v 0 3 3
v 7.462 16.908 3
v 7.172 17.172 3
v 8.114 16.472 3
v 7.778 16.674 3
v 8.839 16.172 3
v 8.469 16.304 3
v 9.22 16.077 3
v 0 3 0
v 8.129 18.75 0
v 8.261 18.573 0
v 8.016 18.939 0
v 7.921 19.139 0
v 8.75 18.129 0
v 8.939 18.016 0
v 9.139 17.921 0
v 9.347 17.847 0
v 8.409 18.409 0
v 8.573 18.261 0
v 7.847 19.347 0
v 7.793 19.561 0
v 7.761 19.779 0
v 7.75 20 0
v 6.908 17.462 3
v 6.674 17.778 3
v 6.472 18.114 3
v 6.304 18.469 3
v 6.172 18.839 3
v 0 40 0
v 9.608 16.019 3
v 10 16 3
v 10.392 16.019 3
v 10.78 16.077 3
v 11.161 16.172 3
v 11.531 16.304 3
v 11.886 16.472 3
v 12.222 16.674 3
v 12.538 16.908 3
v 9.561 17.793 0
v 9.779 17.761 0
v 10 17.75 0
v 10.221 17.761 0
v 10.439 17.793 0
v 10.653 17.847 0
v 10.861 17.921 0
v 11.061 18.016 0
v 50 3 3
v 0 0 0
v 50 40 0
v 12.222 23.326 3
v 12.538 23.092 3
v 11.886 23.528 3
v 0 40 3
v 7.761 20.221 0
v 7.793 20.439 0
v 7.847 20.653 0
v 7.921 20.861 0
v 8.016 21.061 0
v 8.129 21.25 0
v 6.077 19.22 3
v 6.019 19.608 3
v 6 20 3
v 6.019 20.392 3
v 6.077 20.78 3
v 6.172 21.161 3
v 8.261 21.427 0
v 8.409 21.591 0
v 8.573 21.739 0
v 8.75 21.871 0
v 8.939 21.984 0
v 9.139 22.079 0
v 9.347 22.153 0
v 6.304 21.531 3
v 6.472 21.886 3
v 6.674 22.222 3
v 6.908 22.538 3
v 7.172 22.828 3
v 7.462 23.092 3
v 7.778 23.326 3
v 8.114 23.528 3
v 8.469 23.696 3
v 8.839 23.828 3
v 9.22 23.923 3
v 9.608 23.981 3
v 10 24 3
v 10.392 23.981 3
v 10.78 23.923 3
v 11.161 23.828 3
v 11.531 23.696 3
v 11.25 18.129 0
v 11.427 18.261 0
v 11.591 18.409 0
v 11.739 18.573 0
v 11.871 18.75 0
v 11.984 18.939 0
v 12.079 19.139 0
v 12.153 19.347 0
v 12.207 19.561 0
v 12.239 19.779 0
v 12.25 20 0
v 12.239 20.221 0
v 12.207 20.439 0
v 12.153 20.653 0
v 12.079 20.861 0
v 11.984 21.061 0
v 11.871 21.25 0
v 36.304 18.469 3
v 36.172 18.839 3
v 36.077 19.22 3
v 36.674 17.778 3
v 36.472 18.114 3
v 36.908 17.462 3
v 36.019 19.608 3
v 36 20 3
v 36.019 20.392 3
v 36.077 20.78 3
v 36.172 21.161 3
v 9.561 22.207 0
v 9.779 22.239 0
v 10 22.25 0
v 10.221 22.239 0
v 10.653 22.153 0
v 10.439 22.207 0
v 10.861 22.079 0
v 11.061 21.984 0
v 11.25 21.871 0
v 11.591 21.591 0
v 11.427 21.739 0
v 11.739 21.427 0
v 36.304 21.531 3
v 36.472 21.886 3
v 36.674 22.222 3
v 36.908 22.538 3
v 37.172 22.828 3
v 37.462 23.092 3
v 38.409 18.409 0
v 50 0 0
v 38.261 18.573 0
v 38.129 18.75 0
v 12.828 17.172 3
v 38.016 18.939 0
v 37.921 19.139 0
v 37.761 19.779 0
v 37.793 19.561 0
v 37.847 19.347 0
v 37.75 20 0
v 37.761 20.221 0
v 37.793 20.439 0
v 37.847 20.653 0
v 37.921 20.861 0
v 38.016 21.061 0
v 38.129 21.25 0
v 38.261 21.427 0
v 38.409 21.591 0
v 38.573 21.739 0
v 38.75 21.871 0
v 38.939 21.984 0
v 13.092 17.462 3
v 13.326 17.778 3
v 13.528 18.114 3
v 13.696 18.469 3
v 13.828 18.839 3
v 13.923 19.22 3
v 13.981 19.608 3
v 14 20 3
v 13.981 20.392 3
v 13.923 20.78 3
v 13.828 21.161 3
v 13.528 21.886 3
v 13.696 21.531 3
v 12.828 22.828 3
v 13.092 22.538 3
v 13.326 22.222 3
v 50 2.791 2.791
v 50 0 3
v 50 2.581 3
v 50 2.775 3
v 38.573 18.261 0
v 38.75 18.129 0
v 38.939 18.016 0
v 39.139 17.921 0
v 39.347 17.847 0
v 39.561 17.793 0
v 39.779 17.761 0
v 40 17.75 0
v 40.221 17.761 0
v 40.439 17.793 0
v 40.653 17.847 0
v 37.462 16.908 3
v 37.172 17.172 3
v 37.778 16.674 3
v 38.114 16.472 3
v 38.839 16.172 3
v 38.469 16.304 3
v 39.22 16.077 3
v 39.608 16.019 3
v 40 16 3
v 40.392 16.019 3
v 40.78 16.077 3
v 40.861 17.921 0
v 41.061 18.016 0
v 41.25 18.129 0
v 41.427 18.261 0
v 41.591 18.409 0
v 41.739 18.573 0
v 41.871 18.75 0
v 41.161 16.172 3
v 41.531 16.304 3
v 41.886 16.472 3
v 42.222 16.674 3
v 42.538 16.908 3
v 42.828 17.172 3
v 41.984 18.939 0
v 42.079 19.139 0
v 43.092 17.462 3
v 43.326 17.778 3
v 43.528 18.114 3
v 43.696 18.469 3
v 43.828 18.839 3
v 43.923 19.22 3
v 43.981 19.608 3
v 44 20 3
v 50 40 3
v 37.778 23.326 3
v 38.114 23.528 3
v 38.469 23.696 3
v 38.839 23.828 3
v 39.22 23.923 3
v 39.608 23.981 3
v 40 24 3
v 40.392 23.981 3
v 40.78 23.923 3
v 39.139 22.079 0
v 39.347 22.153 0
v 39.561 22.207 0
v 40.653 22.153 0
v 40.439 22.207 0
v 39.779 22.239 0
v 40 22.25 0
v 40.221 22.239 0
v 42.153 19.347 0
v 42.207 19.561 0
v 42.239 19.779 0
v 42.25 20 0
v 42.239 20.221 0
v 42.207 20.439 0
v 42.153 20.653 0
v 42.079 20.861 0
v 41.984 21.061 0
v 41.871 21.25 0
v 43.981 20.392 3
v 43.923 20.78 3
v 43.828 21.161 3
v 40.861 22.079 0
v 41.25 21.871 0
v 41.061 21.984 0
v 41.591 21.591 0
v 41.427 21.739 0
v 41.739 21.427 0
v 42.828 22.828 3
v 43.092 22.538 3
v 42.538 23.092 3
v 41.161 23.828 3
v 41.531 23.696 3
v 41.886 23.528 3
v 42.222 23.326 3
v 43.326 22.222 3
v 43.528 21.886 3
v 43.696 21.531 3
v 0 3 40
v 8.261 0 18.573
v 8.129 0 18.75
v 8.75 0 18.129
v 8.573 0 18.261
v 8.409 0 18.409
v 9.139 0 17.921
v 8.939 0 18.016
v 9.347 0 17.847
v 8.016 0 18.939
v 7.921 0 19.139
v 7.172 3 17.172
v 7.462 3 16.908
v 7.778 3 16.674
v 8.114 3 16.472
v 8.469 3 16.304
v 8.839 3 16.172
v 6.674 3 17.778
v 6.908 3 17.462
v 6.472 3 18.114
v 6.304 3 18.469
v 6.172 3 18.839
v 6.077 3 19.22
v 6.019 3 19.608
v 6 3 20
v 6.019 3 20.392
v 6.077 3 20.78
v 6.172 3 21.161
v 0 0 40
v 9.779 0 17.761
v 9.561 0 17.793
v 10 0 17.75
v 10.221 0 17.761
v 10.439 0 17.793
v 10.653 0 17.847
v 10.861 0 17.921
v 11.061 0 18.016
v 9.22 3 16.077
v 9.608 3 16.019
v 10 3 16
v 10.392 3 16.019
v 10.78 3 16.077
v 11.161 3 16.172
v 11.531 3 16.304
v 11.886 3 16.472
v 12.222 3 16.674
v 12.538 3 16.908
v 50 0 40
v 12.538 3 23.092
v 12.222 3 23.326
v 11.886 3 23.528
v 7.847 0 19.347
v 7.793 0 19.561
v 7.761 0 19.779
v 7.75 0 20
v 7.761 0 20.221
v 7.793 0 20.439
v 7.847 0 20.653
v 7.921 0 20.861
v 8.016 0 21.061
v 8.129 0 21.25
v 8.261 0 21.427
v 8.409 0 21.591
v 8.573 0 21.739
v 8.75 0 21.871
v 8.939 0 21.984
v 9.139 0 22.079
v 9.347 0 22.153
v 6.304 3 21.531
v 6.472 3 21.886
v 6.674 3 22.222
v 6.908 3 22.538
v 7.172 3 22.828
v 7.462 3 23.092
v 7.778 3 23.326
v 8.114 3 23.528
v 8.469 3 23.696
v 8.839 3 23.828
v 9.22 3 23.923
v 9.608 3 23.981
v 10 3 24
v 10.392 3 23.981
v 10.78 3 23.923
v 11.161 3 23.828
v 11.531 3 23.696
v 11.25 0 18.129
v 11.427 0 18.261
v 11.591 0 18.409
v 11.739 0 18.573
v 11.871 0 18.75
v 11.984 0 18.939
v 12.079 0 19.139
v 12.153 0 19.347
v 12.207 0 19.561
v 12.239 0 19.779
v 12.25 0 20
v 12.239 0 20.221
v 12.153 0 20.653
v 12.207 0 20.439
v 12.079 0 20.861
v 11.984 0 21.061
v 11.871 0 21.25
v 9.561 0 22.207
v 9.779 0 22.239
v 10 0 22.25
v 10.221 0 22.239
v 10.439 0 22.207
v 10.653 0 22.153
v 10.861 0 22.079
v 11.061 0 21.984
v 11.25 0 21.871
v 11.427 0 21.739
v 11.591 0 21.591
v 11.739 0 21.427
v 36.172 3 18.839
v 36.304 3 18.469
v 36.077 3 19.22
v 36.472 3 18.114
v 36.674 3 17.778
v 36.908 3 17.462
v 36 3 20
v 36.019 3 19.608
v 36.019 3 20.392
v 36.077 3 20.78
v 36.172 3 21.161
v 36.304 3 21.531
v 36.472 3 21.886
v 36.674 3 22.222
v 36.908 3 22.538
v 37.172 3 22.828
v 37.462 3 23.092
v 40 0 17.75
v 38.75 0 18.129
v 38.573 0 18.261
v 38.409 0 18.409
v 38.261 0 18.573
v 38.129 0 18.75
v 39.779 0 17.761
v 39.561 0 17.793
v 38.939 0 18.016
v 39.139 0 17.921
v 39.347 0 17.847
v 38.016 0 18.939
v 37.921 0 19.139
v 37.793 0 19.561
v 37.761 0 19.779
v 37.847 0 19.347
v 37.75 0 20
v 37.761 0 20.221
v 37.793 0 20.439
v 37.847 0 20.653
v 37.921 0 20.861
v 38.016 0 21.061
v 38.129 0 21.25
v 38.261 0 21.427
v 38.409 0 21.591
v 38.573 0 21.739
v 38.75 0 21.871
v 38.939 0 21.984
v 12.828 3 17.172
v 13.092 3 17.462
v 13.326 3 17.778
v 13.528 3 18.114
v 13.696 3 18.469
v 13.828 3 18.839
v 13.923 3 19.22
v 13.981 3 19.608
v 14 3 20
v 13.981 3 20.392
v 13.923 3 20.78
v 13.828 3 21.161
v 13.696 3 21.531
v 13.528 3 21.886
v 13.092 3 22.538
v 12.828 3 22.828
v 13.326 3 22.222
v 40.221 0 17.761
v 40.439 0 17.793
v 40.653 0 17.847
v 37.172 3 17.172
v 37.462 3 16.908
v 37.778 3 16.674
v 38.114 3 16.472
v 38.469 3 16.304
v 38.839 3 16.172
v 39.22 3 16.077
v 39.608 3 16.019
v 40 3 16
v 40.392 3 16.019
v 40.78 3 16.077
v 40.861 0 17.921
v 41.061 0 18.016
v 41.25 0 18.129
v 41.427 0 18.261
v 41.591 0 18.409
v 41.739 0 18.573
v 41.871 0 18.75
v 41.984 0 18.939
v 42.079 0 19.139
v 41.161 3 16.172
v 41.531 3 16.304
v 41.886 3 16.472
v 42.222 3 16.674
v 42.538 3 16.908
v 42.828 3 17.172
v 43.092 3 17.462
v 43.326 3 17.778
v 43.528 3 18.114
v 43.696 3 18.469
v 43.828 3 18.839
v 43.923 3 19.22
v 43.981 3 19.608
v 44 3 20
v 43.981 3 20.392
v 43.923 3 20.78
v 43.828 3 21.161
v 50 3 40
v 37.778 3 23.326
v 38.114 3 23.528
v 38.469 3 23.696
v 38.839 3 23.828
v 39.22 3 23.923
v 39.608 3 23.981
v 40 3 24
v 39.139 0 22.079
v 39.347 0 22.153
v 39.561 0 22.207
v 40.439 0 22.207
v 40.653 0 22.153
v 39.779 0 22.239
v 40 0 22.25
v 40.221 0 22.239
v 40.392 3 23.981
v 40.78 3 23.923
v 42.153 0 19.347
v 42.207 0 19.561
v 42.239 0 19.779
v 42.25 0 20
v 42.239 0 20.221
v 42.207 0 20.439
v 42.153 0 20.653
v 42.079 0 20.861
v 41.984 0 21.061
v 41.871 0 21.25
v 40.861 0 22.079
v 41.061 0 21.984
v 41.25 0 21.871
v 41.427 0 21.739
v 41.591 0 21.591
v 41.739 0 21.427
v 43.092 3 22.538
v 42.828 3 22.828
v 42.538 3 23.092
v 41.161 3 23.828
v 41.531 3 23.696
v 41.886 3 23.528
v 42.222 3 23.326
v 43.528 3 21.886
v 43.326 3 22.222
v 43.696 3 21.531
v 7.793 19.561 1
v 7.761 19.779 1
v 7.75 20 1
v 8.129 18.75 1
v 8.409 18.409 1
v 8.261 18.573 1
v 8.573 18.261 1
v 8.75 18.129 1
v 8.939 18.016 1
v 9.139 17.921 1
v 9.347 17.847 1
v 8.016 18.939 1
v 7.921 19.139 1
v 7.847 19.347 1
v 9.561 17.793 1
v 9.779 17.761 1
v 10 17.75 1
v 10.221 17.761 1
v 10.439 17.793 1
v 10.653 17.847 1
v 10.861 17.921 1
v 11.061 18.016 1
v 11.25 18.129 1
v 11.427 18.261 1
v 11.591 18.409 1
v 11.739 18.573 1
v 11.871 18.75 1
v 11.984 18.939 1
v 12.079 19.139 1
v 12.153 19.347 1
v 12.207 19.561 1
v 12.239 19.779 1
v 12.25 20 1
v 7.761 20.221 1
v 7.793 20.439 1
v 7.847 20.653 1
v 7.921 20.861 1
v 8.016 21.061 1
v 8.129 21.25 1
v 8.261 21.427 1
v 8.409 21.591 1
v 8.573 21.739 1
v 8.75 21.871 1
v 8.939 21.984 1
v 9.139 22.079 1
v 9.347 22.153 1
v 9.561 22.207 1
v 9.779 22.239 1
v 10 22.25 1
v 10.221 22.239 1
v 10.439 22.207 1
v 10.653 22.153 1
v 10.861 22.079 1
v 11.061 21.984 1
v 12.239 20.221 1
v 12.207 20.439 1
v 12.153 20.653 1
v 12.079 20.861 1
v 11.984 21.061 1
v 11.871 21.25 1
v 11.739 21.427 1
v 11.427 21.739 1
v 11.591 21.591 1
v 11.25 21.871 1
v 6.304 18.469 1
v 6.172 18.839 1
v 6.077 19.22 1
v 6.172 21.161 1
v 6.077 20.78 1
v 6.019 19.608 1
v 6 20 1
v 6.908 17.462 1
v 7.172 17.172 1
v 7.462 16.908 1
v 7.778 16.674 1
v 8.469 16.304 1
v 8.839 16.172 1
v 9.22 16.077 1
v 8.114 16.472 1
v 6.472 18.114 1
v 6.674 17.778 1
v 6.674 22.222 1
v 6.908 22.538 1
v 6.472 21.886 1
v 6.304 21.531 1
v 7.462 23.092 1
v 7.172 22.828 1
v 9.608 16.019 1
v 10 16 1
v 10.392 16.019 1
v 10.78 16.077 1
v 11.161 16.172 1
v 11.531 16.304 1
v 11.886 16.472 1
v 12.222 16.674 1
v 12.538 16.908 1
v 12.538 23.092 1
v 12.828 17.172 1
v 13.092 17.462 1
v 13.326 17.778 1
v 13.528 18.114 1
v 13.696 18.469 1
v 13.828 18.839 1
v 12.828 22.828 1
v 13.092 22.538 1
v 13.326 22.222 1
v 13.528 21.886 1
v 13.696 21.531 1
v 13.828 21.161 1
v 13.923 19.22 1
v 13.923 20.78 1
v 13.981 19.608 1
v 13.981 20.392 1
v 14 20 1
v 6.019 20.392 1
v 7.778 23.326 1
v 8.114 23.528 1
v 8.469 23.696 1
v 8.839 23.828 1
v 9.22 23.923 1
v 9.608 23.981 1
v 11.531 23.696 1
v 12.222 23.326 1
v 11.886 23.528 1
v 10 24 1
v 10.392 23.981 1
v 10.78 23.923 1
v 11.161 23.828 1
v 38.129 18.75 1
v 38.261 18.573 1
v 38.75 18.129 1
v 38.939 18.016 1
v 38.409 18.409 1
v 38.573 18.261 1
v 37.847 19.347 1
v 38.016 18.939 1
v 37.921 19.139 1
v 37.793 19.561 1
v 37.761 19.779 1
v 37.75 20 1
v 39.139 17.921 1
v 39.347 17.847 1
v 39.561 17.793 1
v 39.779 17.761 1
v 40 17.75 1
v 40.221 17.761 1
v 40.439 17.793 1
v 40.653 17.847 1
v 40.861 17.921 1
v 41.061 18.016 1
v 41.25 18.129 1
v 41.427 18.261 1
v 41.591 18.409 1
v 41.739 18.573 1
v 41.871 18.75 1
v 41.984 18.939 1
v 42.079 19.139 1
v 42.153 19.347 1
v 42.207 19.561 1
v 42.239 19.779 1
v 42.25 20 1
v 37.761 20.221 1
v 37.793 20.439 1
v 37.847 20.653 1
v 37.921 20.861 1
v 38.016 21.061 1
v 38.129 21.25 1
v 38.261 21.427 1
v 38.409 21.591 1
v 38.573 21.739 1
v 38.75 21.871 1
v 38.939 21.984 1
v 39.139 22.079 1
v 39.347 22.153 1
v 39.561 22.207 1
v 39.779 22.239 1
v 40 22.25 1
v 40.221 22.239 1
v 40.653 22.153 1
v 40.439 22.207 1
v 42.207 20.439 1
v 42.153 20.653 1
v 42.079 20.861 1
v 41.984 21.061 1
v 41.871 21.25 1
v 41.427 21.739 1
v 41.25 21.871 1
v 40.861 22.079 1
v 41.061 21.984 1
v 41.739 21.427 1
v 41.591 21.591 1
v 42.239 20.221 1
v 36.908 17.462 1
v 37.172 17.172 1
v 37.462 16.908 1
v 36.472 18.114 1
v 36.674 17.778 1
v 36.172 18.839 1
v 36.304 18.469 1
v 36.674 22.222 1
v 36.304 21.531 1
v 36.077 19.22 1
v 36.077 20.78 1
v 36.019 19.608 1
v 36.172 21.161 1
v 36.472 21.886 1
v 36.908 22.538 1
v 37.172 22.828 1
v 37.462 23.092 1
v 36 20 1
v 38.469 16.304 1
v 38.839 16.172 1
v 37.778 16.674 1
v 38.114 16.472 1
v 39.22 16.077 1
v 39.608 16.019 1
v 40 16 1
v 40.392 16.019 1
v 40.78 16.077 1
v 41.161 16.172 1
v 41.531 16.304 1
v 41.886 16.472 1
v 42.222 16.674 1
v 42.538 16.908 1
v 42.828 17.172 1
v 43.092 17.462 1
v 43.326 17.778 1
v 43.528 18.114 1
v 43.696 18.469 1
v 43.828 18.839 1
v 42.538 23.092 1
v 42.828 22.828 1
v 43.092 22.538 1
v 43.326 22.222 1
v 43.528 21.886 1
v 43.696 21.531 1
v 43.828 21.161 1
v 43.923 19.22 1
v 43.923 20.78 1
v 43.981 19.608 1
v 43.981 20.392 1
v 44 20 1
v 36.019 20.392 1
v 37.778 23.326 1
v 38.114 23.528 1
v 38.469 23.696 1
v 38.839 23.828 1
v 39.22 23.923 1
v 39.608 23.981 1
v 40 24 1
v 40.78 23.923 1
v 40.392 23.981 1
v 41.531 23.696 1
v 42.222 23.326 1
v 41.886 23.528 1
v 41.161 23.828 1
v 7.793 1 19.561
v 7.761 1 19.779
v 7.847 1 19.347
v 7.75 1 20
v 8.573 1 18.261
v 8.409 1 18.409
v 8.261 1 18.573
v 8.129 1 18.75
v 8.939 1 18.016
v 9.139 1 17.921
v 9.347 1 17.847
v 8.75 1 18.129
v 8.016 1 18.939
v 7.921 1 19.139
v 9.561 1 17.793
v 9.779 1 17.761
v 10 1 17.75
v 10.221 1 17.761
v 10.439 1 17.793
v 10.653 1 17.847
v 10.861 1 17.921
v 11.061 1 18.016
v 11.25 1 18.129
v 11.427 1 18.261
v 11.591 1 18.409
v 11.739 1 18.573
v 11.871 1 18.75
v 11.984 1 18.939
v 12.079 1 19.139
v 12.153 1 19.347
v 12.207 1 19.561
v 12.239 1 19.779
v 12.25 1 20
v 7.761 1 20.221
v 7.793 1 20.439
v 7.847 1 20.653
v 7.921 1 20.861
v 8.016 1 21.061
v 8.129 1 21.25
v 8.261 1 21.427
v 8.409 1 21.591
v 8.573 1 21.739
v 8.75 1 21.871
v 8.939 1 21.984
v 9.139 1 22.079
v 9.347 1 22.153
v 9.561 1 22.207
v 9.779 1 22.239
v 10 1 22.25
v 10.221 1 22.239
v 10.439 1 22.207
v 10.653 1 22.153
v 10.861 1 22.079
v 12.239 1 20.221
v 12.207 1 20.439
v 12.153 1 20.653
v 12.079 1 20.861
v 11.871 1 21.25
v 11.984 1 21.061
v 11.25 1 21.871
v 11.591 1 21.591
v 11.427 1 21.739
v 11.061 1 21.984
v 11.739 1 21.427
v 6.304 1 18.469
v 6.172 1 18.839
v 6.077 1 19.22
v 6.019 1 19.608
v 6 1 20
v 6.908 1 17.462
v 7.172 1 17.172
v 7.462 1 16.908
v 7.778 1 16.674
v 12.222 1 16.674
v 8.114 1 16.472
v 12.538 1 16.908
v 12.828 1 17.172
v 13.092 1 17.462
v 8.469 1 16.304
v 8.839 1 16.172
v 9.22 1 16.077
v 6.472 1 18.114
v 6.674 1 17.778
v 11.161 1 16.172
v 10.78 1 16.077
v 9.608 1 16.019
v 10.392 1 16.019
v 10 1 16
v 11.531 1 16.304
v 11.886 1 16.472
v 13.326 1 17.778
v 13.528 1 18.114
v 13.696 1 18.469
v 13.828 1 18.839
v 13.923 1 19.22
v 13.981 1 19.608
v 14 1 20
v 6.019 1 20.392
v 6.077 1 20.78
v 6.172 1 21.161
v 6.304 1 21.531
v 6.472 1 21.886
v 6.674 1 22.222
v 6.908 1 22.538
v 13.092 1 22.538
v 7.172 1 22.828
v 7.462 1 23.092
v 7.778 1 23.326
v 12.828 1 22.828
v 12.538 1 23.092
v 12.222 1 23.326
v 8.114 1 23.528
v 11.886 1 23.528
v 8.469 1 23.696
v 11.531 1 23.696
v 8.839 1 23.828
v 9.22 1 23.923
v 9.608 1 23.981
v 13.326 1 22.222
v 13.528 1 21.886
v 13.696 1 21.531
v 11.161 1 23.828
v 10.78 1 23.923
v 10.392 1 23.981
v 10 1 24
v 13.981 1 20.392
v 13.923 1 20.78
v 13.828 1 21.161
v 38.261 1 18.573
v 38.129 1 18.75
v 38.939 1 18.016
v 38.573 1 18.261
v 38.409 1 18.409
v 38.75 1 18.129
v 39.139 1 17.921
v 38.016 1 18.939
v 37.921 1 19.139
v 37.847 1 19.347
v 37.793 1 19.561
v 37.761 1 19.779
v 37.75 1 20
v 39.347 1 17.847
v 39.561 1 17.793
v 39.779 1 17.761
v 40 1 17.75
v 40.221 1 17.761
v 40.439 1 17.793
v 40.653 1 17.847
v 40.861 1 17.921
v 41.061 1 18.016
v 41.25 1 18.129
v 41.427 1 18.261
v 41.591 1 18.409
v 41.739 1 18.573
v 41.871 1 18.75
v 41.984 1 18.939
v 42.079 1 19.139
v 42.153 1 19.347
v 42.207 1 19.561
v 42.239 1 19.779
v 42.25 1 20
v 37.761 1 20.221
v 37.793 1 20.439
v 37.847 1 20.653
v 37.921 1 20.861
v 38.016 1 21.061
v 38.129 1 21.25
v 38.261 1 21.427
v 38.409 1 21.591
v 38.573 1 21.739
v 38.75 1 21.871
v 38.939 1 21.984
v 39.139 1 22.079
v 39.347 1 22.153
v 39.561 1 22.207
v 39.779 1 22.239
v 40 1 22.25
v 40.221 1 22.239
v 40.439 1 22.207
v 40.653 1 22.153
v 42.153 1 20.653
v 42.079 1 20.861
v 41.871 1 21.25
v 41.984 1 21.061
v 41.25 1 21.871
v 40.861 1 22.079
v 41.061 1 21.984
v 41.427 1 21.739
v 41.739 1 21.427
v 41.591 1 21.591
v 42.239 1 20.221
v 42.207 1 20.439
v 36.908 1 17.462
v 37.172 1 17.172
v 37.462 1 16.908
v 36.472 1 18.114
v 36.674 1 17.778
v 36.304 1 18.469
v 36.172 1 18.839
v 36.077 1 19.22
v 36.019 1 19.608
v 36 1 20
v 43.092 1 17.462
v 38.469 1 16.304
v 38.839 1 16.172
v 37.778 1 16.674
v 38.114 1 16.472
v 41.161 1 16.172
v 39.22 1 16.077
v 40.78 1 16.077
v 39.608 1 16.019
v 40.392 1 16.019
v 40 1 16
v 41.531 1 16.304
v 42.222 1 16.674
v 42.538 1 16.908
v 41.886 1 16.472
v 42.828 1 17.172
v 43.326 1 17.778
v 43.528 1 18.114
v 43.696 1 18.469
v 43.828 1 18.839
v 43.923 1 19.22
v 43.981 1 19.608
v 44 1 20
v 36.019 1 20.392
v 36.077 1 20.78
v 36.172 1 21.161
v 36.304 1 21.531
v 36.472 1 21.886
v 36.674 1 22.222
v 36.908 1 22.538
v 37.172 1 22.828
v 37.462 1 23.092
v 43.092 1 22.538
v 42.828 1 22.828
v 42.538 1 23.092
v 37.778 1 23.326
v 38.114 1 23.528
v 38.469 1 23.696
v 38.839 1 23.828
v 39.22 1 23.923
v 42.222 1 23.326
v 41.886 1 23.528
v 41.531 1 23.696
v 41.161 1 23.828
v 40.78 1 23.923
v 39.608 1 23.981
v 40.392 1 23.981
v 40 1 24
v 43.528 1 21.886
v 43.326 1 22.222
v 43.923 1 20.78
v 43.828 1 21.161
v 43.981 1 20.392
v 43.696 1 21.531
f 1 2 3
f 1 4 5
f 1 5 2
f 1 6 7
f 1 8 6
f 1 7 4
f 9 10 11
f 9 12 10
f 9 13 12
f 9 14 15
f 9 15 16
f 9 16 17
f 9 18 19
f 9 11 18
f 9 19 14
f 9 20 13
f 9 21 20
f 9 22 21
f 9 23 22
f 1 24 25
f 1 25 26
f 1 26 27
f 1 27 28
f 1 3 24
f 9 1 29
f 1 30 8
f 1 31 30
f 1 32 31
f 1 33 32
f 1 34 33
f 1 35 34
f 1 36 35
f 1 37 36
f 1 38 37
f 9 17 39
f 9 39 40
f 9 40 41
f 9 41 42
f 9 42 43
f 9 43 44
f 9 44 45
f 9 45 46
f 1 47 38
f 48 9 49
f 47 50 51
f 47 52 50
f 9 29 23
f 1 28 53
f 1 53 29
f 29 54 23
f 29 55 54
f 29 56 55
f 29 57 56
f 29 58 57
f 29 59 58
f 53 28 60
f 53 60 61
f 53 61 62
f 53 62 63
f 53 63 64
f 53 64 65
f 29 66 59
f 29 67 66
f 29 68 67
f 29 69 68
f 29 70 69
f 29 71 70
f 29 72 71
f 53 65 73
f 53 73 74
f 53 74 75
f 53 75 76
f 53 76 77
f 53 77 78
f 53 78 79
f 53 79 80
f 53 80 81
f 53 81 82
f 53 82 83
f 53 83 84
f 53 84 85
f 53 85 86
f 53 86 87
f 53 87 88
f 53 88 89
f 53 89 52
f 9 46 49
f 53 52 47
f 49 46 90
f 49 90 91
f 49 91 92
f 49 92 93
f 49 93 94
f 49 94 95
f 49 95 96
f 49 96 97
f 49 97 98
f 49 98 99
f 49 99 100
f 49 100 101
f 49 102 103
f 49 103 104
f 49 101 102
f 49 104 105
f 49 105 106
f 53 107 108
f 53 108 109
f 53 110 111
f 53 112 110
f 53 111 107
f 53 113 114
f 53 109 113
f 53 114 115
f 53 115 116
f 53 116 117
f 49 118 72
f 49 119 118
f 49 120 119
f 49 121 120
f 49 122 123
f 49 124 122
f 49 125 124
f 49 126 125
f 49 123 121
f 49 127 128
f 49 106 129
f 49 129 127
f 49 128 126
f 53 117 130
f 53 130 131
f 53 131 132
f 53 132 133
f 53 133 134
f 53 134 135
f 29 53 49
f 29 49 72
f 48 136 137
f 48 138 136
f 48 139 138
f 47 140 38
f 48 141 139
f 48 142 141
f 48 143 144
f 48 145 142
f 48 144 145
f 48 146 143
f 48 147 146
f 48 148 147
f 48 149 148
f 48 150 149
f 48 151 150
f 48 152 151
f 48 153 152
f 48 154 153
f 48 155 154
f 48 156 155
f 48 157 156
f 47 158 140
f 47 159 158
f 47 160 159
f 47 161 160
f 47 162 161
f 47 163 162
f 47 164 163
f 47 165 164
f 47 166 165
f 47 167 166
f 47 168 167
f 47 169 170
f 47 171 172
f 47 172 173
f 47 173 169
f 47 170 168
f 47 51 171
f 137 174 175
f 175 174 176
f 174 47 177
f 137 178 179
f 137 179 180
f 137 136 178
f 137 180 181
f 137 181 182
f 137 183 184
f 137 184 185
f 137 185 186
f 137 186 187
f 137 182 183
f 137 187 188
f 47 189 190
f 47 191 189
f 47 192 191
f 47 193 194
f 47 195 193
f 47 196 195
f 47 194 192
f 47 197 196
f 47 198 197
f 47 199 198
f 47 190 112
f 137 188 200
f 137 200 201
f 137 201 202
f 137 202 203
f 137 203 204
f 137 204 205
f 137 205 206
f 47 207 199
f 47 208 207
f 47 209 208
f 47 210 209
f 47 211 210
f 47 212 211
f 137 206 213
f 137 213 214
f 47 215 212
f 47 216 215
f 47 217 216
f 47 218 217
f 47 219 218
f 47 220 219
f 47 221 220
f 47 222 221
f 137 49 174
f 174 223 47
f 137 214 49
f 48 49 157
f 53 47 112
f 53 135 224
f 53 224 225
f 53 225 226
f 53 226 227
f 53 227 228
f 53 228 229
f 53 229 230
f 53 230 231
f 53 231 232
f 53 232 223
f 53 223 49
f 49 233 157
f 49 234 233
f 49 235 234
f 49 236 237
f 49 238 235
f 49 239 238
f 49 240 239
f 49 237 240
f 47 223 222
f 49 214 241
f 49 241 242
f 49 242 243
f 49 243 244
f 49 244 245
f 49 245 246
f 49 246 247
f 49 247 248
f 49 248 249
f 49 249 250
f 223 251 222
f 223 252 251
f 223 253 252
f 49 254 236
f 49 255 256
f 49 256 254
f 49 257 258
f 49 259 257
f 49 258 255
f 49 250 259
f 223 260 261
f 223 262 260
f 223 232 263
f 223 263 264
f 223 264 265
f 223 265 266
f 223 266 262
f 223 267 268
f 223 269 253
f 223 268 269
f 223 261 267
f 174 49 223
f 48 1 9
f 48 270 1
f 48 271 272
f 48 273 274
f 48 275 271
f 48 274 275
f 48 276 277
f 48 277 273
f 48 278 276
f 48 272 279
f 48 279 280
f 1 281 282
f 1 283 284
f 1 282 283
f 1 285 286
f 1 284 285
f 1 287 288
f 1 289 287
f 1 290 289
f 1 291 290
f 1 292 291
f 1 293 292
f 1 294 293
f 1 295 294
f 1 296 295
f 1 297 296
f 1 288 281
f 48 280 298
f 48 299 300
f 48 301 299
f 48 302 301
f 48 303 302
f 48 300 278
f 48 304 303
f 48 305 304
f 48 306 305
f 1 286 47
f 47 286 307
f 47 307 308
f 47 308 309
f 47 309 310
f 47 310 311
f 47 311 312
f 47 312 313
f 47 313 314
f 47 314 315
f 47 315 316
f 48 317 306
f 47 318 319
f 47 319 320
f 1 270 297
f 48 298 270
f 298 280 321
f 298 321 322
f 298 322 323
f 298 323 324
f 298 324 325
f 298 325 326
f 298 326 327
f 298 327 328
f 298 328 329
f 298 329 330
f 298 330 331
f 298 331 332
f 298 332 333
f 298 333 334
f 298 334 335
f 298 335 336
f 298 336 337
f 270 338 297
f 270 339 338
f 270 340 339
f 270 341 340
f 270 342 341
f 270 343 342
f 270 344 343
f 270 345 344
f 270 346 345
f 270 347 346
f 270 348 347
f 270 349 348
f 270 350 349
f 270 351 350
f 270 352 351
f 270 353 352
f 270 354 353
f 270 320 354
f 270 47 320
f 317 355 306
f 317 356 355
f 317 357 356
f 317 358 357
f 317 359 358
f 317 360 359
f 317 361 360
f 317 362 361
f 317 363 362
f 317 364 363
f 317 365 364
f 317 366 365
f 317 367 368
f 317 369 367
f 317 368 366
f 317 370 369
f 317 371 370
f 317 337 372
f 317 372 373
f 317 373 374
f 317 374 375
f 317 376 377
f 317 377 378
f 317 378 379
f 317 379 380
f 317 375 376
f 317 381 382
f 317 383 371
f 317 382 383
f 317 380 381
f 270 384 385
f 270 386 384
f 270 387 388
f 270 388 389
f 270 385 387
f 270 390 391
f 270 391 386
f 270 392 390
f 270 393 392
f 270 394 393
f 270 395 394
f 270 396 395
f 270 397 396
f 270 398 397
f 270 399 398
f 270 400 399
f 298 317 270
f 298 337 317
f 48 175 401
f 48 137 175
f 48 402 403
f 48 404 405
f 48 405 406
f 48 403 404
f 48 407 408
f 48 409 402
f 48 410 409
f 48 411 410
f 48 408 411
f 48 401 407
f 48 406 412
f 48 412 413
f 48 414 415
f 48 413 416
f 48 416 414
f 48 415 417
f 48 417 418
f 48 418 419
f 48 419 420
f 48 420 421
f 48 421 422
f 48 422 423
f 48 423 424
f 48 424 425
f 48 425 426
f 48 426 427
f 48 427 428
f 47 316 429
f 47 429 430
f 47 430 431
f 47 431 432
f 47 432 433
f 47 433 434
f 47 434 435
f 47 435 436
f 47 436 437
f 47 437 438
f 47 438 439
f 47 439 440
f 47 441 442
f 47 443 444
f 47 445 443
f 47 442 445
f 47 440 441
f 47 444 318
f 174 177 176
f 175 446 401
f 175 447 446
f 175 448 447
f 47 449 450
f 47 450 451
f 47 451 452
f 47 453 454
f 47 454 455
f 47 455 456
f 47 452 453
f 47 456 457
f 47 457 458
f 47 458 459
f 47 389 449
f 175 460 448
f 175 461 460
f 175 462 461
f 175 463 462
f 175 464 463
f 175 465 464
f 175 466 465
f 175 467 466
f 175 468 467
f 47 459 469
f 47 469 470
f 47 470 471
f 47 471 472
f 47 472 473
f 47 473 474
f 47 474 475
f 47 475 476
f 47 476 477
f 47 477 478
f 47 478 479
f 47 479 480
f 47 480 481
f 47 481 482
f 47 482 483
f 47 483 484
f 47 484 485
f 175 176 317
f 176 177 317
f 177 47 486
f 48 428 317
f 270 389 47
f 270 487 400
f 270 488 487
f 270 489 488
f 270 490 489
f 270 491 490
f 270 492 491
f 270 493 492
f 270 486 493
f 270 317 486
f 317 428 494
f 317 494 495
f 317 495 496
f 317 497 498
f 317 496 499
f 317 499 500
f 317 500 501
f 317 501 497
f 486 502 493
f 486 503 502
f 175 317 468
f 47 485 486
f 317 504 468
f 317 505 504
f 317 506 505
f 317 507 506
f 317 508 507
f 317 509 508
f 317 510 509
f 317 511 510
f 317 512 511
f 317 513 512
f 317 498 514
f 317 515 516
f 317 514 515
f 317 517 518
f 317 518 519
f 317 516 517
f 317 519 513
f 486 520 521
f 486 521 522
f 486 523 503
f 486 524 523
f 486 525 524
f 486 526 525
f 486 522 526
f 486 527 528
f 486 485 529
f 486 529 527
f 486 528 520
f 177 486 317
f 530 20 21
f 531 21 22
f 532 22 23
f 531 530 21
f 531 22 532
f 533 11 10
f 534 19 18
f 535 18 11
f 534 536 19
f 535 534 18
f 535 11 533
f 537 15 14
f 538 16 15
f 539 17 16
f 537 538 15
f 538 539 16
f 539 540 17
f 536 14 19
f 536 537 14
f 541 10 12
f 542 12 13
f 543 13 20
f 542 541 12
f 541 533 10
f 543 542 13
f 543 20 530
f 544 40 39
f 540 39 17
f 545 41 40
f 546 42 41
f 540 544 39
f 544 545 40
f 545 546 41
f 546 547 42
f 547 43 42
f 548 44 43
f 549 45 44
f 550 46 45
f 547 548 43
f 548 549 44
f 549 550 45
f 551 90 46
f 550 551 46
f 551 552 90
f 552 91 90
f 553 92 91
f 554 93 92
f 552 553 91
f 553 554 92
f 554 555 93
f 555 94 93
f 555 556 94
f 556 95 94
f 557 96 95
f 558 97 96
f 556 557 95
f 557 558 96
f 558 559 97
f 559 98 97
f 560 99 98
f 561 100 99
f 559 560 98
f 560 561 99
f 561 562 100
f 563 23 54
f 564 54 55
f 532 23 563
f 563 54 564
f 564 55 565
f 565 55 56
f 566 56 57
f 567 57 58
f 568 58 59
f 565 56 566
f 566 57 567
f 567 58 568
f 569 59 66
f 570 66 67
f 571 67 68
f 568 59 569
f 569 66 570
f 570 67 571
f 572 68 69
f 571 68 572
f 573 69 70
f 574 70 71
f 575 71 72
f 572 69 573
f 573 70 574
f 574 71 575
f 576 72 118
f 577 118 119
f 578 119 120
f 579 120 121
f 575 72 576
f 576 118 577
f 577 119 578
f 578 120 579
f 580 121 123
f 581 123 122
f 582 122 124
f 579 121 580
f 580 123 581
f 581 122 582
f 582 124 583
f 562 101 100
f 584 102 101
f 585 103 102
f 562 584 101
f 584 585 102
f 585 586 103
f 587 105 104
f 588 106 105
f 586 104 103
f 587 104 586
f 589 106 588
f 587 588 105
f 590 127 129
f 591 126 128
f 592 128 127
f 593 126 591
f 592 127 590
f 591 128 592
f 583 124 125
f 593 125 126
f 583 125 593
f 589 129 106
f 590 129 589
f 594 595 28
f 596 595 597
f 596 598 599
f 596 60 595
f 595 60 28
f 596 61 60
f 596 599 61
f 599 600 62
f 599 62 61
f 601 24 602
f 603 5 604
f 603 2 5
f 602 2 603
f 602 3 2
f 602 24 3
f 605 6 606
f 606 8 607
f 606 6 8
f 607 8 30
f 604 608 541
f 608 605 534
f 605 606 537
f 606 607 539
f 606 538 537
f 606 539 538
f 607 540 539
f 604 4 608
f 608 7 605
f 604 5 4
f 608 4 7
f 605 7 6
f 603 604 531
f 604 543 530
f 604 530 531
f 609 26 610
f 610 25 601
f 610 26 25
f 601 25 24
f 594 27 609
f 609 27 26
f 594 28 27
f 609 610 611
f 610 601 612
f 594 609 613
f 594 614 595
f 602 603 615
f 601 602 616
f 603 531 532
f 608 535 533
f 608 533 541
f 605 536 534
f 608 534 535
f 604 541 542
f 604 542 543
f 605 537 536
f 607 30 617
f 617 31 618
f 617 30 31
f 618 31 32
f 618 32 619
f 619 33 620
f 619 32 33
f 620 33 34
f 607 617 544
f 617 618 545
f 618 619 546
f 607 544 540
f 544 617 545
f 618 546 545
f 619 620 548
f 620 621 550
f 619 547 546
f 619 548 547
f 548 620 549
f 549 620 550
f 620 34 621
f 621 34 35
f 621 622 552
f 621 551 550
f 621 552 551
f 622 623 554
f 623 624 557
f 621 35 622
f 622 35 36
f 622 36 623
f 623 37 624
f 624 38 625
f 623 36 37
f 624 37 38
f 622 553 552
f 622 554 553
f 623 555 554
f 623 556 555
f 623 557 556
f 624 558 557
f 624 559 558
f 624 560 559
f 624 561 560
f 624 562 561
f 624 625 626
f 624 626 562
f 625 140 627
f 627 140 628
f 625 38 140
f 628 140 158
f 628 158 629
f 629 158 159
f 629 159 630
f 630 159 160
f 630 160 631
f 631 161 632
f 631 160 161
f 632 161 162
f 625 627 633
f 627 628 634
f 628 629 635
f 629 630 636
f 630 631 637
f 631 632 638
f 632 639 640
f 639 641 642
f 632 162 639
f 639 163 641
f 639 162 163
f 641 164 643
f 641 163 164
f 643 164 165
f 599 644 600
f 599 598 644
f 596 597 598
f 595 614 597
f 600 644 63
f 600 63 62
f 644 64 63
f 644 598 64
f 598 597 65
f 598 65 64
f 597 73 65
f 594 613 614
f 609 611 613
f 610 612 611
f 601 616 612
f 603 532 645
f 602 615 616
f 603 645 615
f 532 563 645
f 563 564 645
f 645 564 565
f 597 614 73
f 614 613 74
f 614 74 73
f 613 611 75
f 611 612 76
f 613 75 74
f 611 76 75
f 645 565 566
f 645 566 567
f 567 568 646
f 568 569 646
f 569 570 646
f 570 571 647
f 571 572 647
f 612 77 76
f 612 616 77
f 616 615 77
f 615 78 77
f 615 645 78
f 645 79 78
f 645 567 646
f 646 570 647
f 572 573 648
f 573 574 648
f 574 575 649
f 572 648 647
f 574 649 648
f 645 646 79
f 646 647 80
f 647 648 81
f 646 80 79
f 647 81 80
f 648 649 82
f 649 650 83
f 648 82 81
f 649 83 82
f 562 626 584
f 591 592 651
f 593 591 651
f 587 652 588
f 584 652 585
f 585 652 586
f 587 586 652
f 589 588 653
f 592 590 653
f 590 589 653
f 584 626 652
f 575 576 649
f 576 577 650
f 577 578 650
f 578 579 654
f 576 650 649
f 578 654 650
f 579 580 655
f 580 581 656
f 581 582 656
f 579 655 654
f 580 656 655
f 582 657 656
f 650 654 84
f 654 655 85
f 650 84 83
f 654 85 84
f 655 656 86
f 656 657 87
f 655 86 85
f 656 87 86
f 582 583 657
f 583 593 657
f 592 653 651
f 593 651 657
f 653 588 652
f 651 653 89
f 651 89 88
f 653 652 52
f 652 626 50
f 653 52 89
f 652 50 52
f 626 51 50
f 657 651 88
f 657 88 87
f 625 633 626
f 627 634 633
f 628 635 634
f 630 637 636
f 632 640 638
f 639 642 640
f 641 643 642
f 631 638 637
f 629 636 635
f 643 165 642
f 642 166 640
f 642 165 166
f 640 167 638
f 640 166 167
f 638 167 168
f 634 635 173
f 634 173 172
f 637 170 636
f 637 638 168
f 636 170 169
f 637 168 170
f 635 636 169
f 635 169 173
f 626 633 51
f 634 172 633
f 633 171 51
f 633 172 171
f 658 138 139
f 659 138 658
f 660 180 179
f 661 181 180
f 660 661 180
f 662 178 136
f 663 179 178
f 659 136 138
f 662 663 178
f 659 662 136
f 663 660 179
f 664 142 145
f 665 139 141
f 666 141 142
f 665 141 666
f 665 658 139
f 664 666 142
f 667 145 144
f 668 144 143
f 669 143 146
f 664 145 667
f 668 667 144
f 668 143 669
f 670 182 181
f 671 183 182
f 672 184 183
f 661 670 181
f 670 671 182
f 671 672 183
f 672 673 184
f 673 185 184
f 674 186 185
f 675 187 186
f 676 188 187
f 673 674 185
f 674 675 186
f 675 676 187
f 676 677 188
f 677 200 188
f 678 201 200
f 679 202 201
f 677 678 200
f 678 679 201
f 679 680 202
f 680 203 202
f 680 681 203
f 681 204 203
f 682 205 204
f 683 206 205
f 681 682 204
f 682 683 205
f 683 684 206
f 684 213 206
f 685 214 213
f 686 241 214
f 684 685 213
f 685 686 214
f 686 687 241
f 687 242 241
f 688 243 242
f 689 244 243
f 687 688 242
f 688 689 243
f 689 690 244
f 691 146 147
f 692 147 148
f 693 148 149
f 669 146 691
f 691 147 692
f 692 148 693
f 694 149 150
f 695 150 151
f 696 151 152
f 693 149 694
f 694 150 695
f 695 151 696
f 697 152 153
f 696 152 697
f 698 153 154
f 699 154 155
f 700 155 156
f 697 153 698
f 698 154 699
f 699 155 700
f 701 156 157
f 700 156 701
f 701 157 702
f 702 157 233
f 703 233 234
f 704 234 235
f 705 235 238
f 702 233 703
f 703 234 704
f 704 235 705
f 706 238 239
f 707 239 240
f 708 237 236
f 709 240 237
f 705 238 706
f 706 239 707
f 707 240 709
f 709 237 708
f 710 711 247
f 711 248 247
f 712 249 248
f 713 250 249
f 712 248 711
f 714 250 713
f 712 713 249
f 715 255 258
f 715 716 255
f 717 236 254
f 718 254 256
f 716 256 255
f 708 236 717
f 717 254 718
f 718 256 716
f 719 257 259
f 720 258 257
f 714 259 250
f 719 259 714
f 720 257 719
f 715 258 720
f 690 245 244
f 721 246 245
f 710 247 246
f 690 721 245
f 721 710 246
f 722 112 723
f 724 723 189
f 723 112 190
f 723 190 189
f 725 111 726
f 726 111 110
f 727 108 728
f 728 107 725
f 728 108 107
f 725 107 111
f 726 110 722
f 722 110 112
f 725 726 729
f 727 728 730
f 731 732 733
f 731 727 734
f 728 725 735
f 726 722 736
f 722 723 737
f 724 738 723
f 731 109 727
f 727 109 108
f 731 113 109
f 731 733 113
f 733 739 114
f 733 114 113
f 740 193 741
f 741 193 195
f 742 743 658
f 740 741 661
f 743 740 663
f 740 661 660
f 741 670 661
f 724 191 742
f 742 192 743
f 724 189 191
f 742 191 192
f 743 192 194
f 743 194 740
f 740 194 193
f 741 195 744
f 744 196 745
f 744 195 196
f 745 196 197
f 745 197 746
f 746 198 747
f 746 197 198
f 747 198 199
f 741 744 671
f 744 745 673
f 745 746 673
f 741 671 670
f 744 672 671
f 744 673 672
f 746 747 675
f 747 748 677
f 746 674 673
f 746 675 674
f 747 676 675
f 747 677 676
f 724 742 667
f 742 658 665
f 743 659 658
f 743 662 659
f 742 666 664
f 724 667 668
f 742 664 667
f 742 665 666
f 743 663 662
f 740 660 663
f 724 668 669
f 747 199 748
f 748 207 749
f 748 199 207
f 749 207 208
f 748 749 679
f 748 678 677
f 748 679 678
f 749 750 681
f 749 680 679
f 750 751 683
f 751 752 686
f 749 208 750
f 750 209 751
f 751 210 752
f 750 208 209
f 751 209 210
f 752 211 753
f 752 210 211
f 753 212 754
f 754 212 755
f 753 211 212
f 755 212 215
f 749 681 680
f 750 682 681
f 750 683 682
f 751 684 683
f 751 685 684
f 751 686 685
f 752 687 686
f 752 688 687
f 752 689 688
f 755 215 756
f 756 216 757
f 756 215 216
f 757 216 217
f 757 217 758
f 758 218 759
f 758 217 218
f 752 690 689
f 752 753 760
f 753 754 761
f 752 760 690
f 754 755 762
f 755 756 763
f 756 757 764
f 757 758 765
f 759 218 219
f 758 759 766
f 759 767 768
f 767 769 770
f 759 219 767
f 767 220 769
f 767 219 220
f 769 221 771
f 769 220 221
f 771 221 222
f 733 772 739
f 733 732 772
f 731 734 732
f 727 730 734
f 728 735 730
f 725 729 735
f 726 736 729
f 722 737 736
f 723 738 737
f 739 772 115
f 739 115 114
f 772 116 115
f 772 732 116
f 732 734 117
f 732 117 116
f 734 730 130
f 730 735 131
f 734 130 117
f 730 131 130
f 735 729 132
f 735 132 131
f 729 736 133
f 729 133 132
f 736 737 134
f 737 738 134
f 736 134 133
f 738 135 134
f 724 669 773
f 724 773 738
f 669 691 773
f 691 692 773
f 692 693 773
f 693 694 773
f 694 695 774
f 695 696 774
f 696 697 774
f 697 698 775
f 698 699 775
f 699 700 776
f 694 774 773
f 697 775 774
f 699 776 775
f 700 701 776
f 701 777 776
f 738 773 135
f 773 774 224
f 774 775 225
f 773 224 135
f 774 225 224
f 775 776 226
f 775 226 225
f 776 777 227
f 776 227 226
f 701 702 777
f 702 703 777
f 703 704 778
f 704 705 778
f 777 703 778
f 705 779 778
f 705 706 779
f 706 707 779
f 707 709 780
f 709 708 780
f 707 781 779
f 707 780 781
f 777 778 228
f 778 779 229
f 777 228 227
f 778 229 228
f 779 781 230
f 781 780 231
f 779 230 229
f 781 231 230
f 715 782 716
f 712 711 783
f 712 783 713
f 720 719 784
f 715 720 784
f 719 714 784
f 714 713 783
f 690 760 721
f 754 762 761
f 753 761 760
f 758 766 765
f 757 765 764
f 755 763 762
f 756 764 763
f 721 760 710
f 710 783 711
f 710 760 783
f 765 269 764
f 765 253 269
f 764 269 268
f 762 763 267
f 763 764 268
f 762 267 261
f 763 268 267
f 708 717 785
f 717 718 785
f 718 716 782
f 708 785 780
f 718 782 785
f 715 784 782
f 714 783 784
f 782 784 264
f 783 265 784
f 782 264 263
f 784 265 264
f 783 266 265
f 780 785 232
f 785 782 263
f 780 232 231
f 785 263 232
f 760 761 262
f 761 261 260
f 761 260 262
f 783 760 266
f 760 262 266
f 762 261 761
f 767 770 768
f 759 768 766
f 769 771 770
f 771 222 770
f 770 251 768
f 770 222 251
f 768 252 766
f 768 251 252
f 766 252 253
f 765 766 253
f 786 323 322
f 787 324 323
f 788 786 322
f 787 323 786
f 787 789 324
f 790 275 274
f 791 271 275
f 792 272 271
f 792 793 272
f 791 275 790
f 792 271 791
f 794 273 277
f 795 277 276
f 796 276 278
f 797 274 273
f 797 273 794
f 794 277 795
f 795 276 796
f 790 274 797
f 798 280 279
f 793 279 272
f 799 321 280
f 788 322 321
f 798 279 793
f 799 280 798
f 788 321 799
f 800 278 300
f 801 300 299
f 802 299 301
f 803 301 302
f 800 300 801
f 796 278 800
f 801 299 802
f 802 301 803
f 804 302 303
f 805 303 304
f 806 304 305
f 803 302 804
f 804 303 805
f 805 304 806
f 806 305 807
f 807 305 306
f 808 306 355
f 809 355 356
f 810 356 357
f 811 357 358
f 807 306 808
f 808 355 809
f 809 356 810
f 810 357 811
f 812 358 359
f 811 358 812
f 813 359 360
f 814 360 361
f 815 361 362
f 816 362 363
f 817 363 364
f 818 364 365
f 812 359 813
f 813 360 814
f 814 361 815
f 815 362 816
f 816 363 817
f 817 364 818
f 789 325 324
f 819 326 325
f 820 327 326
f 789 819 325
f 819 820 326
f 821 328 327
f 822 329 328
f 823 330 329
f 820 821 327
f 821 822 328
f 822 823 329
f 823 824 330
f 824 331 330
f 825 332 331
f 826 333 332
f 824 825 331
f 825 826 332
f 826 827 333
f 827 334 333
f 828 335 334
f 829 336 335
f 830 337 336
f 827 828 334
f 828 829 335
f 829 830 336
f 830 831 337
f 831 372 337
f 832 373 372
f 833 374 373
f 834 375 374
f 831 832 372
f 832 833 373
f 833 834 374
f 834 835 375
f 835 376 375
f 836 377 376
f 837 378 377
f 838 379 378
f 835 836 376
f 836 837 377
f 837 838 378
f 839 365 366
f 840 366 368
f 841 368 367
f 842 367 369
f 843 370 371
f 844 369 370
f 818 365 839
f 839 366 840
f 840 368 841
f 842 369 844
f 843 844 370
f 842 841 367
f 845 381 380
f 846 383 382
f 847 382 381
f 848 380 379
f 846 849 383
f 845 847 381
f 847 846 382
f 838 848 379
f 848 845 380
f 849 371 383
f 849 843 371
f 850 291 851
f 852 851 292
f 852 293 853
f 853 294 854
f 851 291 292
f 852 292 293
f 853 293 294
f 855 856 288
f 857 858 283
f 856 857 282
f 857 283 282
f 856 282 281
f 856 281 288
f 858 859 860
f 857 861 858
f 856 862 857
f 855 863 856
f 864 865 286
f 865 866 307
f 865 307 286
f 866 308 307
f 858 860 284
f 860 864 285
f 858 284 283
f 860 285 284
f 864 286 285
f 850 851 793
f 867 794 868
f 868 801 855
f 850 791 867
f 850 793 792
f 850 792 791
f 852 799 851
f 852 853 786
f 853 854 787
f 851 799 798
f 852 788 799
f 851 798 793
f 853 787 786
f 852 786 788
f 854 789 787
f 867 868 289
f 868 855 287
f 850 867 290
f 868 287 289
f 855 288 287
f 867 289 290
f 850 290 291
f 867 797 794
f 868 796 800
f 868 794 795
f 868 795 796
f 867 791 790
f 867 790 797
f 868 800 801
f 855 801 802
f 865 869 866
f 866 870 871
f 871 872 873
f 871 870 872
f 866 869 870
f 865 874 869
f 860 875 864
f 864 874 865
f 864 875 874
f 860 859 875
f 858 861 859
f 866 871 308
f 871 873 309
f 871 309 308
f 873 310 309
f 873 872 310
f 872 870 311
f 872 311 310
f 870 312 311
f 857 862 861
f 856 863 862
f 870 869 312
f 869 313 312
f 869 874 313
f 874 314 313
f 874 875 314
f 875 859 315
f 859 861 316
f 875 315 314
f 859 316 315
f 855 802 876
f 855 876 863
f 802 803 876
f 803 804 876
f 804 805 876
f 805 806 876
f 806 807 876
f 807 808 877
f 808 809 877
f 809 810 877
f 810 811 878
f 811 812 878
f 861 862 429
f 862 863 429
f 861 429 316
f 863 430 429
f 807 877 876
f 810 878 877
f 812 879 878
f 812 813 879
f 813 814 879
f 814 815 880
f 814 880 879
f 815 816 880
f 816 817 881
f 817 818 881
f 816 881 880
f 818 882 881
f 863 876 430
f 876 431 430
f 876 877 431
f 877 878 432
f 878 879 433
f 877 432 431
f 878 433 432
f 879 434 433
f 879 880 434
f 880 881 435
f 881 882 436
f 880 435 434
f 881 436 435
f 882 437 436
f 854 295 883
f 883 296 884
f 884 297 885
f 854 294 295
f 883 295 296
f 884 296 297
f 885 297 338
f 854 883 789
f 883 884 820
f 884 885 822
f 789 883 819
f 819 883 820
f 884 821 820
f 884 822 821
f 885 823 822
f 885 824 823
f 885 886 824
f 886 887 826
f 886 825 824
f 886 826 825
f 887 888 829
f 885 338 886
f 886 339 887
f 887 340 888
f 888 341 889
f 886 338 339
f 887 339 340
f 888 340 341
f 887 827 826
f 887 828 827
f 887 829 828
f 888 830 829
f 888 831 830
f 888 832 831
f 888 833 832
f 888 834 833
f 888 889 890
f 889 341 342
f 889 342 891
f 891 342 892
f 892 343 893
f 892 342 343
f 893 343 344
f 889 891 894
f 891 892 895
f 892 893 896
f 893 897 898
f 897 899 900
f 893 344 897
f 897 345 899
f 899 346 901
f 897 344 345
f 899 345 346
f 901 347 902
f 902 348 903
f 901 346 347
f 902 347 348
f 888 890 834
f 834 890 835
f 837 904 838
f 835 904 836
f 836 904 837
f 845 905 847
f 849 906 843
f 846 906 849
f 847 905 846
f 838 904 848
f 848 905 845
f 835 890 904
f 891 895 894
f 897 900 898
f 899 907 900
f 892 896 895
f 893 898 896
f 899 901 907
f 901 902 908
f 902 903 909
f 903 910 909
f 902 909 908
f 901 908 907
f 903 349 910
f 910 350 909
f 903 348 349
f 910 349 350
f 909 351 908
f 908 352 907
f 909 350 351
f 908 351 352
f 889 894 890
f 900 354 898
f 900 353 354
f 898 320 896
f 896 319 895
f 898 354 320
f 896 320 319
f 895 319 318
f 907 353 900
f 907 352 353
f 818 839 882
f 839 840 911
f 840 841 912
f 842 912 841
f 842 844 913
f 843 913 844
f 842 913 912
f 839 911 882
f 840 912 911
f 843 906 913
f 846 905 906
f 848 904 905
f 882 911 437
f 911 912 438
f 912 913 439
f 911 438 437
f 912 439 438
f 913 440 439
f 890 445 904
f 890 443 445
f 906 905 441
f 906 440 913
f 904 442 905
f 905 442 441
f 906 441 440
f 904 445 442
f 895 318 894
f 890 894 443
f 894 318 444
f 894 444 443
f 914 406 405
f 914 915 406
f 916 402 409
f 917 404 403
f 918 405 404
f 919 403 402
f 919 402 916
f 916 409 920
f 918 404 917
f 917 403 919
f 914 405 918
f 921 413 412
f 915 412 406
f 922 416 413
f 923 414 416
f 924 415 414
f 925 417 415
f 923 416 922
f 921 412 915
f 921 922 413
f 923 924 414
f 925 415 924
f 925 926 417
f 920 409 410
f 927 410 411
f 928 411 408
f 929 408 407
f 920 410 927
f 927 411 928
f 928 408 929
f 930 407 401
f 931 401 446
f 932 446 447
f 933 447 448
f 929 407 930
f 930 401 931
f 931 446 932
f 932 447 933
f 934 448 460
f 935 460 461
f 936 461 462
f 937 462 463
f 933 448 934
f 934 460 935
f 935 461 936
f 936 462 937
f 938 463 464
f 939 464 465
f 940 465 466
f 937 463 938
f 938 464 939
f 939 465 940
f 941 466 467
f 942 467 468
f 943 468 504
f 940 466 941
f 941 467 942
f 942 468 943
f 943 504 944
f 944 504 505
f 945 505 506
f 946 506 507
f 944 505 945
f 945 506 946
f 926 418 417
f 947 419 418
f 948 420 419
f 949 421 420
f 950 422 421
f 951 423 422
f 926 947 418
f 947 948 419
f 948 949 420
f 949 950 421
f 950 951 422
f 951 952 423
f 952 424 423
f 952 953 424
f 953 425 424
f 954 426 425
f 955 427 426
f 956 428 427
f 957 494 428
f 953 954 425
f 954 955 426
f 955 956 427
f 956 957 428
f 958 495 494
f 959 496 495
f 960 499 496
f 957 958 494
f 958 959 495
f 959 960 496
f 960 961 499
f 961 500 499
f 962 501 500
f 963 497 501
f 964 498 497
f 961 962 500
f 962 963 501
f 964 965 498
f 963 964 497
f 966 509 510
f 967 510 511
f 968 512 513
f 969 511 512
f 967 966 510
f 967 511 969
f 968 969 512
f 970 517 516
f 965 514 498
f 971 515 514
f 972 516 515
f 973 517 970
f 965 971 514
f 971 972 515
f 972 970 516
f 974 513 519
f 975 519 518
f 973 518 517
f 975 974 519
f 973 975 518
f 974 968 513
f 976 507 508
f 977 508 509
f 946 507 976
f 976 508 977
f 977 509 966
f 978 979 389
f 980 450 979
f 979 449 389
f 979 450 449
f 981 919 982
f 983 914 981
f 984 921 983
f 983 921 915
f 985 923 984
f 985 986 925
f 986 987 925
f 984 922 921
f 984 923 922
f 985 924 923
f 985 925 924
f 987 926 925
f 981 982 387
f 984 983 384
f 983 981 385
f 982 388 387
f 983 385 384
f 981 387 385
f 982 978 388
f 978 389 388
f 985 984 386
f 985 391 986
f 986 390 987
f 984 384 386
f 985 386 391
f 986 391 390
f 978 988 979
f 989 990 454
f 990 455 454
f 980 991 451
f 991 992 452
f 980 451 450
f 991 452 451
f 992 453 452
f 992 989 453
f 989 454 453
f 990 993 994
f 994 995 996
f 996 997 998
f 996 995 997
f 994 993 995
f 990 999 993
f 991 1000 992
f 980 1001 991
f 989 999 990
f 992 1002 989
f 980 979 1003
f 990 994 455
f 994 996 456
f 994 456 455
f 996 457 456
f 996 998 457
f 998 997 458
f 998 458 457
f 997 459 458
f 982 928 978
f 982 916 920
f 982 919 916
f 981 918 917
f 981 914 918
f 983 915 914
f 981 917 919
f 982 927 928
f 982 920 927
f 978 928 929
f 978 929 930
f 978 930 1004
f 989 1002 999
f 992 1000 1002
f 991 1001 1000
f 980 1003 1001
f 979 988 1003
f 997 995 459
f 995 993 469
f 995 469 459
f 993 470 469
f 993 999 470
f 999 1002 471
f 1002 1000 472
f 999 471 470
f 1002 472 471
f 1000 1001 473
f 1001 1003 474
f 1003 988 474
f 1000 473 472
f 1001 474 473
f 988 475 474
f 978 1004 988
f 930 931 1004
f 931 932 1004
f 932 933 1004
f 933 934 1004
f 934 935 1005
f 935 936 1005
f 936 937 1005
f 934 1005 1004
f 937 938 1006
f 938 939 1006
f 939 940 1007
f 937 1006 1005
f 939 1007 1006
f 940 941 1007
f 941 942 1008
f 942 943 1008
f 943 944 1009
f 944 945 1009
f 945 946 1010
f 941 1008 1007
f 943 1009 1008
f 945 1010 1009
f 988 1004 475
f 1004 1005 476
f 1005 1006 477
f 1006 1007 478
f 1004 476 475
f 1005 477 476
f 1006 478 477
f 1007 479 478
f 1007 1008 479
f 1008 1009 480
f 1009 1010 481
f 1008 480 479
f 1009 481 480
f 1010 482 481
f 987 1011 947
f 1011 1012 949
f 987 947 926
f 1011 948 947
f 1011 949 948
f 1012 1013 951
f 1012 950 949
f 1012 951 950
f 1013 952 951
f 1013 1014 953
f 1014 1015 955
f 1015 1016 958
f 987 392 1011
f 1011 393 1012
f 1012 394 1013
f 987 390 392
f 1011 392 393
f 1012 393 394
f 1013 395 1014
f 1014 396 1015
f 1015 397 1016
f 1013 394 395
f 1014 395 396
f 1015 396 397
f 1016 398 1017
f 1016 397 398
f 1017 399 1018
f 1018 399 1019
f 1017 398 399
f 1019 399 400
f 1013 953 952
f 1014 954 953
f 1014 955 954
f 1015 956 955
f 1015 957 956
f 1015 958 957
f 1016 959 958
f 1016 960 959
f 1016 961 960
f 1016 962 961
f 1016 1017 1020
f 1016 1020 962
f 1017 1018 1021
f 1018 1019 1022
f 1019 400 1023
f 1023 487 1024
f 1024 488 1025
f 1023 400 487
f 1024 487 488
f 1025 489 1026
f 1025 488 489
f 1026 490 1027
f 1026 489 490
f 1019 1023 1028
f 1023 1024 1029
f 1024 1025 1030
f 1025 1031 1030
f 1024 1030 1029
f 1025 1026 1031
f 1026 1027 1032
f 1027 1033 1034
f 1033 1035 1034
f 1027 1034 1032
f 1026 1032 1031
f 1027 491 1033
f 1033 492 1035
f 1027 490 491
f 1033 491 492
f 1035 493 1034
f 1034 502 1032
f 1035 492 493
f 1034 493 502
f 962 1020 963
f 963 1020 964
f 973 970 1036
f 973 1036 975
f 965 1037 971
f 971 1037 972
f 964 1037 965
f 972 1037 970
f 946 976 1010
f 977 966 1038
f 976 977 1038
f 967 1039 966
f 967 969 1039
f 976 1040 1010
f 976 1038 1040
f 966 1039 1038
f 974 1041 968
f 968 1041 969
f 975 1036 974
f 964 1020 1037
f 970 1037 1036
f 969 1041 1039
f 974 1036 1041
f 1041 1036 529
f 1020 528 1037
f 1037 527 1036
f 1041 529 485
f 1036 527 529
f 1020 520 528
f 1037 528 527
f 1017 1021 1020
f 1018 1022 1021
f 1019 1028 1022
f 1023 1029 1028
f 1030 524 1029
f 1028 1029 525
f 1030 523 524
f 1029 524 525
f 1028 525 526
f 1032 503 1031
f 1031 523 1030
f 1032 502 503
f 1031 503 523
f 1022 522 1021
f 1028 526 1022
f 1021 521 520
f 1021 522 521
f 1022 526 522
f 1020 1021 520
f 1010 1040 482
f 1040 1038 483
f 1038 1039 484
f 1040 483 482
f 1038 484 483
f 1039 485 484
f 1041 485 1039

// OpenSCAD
// openscad
$fn = 64;

// Parameters
w = 50;             // width (X)
len = 40;           // flange length (Y for horizontal, Z for vertical)
t = 3;              // thickness
hole_d = 4.5;       // through hole diameter for M4
cs_d = 8;           // countersink seat diameter
cs_depth = 2;       // countersink depth

// Hole X positions: 10mm from each lateral edge (symmetric)
hole_x = [10, w - 10];

// Centers along the face midline
h_y = len/2;    // horizontal flange holes: Y coordinate
v_z = len/2;    // vertical flange holes: Z coordinate

module bracket() {
    // Horizontal flange: X:0..w, Y:0..len, Z:0..t
    translate([0,0,0]) cube([w, len, t], center=false);
    // Vertical flange: X:0..w, Y:0..t, Z:0..len
    translate([0,0,0]) cube([w, t, len], center=false);
}

module subtract_holes() {
    // Horizontal flange holes (axis Z), countersink on outer side (+Z)
    for (x = hole_x) {
        // through hole (centered in thickness)
        translate([x, h_y, t/2]) cylinder(h=100, r=hole_d/2, center=true);
        // countersink pocket from outer face (+Z), depth cs_depth
        translate([x, h_y, t - cs_depth/2]) cylinder(h=cs_depth, r=cs_d/2, center=true);
    }

    // Vertical flange holes (axis Y), countersink on outer side (+Y)
    for (x = hole_x) {
        // through hole (axis along Y), center at Y = t/2
        translate([x, t/2, v_z]) rotate([90,0,0]) cylinder(h=100, r=hole_d/2, center=true);
        // countersink pocket from outer face (+Y), depth cs_depth (axis along Y)
        translate([x, t - cs_depth/2, v_z]) rotate([90,0,0]) cylinder(h=cs_depth, r=cs_d/2, center=true);
    }
}

// Final part: union of flanges minus holes/countersinks
difference() {
    bracket();
    subtract_holes();
}
